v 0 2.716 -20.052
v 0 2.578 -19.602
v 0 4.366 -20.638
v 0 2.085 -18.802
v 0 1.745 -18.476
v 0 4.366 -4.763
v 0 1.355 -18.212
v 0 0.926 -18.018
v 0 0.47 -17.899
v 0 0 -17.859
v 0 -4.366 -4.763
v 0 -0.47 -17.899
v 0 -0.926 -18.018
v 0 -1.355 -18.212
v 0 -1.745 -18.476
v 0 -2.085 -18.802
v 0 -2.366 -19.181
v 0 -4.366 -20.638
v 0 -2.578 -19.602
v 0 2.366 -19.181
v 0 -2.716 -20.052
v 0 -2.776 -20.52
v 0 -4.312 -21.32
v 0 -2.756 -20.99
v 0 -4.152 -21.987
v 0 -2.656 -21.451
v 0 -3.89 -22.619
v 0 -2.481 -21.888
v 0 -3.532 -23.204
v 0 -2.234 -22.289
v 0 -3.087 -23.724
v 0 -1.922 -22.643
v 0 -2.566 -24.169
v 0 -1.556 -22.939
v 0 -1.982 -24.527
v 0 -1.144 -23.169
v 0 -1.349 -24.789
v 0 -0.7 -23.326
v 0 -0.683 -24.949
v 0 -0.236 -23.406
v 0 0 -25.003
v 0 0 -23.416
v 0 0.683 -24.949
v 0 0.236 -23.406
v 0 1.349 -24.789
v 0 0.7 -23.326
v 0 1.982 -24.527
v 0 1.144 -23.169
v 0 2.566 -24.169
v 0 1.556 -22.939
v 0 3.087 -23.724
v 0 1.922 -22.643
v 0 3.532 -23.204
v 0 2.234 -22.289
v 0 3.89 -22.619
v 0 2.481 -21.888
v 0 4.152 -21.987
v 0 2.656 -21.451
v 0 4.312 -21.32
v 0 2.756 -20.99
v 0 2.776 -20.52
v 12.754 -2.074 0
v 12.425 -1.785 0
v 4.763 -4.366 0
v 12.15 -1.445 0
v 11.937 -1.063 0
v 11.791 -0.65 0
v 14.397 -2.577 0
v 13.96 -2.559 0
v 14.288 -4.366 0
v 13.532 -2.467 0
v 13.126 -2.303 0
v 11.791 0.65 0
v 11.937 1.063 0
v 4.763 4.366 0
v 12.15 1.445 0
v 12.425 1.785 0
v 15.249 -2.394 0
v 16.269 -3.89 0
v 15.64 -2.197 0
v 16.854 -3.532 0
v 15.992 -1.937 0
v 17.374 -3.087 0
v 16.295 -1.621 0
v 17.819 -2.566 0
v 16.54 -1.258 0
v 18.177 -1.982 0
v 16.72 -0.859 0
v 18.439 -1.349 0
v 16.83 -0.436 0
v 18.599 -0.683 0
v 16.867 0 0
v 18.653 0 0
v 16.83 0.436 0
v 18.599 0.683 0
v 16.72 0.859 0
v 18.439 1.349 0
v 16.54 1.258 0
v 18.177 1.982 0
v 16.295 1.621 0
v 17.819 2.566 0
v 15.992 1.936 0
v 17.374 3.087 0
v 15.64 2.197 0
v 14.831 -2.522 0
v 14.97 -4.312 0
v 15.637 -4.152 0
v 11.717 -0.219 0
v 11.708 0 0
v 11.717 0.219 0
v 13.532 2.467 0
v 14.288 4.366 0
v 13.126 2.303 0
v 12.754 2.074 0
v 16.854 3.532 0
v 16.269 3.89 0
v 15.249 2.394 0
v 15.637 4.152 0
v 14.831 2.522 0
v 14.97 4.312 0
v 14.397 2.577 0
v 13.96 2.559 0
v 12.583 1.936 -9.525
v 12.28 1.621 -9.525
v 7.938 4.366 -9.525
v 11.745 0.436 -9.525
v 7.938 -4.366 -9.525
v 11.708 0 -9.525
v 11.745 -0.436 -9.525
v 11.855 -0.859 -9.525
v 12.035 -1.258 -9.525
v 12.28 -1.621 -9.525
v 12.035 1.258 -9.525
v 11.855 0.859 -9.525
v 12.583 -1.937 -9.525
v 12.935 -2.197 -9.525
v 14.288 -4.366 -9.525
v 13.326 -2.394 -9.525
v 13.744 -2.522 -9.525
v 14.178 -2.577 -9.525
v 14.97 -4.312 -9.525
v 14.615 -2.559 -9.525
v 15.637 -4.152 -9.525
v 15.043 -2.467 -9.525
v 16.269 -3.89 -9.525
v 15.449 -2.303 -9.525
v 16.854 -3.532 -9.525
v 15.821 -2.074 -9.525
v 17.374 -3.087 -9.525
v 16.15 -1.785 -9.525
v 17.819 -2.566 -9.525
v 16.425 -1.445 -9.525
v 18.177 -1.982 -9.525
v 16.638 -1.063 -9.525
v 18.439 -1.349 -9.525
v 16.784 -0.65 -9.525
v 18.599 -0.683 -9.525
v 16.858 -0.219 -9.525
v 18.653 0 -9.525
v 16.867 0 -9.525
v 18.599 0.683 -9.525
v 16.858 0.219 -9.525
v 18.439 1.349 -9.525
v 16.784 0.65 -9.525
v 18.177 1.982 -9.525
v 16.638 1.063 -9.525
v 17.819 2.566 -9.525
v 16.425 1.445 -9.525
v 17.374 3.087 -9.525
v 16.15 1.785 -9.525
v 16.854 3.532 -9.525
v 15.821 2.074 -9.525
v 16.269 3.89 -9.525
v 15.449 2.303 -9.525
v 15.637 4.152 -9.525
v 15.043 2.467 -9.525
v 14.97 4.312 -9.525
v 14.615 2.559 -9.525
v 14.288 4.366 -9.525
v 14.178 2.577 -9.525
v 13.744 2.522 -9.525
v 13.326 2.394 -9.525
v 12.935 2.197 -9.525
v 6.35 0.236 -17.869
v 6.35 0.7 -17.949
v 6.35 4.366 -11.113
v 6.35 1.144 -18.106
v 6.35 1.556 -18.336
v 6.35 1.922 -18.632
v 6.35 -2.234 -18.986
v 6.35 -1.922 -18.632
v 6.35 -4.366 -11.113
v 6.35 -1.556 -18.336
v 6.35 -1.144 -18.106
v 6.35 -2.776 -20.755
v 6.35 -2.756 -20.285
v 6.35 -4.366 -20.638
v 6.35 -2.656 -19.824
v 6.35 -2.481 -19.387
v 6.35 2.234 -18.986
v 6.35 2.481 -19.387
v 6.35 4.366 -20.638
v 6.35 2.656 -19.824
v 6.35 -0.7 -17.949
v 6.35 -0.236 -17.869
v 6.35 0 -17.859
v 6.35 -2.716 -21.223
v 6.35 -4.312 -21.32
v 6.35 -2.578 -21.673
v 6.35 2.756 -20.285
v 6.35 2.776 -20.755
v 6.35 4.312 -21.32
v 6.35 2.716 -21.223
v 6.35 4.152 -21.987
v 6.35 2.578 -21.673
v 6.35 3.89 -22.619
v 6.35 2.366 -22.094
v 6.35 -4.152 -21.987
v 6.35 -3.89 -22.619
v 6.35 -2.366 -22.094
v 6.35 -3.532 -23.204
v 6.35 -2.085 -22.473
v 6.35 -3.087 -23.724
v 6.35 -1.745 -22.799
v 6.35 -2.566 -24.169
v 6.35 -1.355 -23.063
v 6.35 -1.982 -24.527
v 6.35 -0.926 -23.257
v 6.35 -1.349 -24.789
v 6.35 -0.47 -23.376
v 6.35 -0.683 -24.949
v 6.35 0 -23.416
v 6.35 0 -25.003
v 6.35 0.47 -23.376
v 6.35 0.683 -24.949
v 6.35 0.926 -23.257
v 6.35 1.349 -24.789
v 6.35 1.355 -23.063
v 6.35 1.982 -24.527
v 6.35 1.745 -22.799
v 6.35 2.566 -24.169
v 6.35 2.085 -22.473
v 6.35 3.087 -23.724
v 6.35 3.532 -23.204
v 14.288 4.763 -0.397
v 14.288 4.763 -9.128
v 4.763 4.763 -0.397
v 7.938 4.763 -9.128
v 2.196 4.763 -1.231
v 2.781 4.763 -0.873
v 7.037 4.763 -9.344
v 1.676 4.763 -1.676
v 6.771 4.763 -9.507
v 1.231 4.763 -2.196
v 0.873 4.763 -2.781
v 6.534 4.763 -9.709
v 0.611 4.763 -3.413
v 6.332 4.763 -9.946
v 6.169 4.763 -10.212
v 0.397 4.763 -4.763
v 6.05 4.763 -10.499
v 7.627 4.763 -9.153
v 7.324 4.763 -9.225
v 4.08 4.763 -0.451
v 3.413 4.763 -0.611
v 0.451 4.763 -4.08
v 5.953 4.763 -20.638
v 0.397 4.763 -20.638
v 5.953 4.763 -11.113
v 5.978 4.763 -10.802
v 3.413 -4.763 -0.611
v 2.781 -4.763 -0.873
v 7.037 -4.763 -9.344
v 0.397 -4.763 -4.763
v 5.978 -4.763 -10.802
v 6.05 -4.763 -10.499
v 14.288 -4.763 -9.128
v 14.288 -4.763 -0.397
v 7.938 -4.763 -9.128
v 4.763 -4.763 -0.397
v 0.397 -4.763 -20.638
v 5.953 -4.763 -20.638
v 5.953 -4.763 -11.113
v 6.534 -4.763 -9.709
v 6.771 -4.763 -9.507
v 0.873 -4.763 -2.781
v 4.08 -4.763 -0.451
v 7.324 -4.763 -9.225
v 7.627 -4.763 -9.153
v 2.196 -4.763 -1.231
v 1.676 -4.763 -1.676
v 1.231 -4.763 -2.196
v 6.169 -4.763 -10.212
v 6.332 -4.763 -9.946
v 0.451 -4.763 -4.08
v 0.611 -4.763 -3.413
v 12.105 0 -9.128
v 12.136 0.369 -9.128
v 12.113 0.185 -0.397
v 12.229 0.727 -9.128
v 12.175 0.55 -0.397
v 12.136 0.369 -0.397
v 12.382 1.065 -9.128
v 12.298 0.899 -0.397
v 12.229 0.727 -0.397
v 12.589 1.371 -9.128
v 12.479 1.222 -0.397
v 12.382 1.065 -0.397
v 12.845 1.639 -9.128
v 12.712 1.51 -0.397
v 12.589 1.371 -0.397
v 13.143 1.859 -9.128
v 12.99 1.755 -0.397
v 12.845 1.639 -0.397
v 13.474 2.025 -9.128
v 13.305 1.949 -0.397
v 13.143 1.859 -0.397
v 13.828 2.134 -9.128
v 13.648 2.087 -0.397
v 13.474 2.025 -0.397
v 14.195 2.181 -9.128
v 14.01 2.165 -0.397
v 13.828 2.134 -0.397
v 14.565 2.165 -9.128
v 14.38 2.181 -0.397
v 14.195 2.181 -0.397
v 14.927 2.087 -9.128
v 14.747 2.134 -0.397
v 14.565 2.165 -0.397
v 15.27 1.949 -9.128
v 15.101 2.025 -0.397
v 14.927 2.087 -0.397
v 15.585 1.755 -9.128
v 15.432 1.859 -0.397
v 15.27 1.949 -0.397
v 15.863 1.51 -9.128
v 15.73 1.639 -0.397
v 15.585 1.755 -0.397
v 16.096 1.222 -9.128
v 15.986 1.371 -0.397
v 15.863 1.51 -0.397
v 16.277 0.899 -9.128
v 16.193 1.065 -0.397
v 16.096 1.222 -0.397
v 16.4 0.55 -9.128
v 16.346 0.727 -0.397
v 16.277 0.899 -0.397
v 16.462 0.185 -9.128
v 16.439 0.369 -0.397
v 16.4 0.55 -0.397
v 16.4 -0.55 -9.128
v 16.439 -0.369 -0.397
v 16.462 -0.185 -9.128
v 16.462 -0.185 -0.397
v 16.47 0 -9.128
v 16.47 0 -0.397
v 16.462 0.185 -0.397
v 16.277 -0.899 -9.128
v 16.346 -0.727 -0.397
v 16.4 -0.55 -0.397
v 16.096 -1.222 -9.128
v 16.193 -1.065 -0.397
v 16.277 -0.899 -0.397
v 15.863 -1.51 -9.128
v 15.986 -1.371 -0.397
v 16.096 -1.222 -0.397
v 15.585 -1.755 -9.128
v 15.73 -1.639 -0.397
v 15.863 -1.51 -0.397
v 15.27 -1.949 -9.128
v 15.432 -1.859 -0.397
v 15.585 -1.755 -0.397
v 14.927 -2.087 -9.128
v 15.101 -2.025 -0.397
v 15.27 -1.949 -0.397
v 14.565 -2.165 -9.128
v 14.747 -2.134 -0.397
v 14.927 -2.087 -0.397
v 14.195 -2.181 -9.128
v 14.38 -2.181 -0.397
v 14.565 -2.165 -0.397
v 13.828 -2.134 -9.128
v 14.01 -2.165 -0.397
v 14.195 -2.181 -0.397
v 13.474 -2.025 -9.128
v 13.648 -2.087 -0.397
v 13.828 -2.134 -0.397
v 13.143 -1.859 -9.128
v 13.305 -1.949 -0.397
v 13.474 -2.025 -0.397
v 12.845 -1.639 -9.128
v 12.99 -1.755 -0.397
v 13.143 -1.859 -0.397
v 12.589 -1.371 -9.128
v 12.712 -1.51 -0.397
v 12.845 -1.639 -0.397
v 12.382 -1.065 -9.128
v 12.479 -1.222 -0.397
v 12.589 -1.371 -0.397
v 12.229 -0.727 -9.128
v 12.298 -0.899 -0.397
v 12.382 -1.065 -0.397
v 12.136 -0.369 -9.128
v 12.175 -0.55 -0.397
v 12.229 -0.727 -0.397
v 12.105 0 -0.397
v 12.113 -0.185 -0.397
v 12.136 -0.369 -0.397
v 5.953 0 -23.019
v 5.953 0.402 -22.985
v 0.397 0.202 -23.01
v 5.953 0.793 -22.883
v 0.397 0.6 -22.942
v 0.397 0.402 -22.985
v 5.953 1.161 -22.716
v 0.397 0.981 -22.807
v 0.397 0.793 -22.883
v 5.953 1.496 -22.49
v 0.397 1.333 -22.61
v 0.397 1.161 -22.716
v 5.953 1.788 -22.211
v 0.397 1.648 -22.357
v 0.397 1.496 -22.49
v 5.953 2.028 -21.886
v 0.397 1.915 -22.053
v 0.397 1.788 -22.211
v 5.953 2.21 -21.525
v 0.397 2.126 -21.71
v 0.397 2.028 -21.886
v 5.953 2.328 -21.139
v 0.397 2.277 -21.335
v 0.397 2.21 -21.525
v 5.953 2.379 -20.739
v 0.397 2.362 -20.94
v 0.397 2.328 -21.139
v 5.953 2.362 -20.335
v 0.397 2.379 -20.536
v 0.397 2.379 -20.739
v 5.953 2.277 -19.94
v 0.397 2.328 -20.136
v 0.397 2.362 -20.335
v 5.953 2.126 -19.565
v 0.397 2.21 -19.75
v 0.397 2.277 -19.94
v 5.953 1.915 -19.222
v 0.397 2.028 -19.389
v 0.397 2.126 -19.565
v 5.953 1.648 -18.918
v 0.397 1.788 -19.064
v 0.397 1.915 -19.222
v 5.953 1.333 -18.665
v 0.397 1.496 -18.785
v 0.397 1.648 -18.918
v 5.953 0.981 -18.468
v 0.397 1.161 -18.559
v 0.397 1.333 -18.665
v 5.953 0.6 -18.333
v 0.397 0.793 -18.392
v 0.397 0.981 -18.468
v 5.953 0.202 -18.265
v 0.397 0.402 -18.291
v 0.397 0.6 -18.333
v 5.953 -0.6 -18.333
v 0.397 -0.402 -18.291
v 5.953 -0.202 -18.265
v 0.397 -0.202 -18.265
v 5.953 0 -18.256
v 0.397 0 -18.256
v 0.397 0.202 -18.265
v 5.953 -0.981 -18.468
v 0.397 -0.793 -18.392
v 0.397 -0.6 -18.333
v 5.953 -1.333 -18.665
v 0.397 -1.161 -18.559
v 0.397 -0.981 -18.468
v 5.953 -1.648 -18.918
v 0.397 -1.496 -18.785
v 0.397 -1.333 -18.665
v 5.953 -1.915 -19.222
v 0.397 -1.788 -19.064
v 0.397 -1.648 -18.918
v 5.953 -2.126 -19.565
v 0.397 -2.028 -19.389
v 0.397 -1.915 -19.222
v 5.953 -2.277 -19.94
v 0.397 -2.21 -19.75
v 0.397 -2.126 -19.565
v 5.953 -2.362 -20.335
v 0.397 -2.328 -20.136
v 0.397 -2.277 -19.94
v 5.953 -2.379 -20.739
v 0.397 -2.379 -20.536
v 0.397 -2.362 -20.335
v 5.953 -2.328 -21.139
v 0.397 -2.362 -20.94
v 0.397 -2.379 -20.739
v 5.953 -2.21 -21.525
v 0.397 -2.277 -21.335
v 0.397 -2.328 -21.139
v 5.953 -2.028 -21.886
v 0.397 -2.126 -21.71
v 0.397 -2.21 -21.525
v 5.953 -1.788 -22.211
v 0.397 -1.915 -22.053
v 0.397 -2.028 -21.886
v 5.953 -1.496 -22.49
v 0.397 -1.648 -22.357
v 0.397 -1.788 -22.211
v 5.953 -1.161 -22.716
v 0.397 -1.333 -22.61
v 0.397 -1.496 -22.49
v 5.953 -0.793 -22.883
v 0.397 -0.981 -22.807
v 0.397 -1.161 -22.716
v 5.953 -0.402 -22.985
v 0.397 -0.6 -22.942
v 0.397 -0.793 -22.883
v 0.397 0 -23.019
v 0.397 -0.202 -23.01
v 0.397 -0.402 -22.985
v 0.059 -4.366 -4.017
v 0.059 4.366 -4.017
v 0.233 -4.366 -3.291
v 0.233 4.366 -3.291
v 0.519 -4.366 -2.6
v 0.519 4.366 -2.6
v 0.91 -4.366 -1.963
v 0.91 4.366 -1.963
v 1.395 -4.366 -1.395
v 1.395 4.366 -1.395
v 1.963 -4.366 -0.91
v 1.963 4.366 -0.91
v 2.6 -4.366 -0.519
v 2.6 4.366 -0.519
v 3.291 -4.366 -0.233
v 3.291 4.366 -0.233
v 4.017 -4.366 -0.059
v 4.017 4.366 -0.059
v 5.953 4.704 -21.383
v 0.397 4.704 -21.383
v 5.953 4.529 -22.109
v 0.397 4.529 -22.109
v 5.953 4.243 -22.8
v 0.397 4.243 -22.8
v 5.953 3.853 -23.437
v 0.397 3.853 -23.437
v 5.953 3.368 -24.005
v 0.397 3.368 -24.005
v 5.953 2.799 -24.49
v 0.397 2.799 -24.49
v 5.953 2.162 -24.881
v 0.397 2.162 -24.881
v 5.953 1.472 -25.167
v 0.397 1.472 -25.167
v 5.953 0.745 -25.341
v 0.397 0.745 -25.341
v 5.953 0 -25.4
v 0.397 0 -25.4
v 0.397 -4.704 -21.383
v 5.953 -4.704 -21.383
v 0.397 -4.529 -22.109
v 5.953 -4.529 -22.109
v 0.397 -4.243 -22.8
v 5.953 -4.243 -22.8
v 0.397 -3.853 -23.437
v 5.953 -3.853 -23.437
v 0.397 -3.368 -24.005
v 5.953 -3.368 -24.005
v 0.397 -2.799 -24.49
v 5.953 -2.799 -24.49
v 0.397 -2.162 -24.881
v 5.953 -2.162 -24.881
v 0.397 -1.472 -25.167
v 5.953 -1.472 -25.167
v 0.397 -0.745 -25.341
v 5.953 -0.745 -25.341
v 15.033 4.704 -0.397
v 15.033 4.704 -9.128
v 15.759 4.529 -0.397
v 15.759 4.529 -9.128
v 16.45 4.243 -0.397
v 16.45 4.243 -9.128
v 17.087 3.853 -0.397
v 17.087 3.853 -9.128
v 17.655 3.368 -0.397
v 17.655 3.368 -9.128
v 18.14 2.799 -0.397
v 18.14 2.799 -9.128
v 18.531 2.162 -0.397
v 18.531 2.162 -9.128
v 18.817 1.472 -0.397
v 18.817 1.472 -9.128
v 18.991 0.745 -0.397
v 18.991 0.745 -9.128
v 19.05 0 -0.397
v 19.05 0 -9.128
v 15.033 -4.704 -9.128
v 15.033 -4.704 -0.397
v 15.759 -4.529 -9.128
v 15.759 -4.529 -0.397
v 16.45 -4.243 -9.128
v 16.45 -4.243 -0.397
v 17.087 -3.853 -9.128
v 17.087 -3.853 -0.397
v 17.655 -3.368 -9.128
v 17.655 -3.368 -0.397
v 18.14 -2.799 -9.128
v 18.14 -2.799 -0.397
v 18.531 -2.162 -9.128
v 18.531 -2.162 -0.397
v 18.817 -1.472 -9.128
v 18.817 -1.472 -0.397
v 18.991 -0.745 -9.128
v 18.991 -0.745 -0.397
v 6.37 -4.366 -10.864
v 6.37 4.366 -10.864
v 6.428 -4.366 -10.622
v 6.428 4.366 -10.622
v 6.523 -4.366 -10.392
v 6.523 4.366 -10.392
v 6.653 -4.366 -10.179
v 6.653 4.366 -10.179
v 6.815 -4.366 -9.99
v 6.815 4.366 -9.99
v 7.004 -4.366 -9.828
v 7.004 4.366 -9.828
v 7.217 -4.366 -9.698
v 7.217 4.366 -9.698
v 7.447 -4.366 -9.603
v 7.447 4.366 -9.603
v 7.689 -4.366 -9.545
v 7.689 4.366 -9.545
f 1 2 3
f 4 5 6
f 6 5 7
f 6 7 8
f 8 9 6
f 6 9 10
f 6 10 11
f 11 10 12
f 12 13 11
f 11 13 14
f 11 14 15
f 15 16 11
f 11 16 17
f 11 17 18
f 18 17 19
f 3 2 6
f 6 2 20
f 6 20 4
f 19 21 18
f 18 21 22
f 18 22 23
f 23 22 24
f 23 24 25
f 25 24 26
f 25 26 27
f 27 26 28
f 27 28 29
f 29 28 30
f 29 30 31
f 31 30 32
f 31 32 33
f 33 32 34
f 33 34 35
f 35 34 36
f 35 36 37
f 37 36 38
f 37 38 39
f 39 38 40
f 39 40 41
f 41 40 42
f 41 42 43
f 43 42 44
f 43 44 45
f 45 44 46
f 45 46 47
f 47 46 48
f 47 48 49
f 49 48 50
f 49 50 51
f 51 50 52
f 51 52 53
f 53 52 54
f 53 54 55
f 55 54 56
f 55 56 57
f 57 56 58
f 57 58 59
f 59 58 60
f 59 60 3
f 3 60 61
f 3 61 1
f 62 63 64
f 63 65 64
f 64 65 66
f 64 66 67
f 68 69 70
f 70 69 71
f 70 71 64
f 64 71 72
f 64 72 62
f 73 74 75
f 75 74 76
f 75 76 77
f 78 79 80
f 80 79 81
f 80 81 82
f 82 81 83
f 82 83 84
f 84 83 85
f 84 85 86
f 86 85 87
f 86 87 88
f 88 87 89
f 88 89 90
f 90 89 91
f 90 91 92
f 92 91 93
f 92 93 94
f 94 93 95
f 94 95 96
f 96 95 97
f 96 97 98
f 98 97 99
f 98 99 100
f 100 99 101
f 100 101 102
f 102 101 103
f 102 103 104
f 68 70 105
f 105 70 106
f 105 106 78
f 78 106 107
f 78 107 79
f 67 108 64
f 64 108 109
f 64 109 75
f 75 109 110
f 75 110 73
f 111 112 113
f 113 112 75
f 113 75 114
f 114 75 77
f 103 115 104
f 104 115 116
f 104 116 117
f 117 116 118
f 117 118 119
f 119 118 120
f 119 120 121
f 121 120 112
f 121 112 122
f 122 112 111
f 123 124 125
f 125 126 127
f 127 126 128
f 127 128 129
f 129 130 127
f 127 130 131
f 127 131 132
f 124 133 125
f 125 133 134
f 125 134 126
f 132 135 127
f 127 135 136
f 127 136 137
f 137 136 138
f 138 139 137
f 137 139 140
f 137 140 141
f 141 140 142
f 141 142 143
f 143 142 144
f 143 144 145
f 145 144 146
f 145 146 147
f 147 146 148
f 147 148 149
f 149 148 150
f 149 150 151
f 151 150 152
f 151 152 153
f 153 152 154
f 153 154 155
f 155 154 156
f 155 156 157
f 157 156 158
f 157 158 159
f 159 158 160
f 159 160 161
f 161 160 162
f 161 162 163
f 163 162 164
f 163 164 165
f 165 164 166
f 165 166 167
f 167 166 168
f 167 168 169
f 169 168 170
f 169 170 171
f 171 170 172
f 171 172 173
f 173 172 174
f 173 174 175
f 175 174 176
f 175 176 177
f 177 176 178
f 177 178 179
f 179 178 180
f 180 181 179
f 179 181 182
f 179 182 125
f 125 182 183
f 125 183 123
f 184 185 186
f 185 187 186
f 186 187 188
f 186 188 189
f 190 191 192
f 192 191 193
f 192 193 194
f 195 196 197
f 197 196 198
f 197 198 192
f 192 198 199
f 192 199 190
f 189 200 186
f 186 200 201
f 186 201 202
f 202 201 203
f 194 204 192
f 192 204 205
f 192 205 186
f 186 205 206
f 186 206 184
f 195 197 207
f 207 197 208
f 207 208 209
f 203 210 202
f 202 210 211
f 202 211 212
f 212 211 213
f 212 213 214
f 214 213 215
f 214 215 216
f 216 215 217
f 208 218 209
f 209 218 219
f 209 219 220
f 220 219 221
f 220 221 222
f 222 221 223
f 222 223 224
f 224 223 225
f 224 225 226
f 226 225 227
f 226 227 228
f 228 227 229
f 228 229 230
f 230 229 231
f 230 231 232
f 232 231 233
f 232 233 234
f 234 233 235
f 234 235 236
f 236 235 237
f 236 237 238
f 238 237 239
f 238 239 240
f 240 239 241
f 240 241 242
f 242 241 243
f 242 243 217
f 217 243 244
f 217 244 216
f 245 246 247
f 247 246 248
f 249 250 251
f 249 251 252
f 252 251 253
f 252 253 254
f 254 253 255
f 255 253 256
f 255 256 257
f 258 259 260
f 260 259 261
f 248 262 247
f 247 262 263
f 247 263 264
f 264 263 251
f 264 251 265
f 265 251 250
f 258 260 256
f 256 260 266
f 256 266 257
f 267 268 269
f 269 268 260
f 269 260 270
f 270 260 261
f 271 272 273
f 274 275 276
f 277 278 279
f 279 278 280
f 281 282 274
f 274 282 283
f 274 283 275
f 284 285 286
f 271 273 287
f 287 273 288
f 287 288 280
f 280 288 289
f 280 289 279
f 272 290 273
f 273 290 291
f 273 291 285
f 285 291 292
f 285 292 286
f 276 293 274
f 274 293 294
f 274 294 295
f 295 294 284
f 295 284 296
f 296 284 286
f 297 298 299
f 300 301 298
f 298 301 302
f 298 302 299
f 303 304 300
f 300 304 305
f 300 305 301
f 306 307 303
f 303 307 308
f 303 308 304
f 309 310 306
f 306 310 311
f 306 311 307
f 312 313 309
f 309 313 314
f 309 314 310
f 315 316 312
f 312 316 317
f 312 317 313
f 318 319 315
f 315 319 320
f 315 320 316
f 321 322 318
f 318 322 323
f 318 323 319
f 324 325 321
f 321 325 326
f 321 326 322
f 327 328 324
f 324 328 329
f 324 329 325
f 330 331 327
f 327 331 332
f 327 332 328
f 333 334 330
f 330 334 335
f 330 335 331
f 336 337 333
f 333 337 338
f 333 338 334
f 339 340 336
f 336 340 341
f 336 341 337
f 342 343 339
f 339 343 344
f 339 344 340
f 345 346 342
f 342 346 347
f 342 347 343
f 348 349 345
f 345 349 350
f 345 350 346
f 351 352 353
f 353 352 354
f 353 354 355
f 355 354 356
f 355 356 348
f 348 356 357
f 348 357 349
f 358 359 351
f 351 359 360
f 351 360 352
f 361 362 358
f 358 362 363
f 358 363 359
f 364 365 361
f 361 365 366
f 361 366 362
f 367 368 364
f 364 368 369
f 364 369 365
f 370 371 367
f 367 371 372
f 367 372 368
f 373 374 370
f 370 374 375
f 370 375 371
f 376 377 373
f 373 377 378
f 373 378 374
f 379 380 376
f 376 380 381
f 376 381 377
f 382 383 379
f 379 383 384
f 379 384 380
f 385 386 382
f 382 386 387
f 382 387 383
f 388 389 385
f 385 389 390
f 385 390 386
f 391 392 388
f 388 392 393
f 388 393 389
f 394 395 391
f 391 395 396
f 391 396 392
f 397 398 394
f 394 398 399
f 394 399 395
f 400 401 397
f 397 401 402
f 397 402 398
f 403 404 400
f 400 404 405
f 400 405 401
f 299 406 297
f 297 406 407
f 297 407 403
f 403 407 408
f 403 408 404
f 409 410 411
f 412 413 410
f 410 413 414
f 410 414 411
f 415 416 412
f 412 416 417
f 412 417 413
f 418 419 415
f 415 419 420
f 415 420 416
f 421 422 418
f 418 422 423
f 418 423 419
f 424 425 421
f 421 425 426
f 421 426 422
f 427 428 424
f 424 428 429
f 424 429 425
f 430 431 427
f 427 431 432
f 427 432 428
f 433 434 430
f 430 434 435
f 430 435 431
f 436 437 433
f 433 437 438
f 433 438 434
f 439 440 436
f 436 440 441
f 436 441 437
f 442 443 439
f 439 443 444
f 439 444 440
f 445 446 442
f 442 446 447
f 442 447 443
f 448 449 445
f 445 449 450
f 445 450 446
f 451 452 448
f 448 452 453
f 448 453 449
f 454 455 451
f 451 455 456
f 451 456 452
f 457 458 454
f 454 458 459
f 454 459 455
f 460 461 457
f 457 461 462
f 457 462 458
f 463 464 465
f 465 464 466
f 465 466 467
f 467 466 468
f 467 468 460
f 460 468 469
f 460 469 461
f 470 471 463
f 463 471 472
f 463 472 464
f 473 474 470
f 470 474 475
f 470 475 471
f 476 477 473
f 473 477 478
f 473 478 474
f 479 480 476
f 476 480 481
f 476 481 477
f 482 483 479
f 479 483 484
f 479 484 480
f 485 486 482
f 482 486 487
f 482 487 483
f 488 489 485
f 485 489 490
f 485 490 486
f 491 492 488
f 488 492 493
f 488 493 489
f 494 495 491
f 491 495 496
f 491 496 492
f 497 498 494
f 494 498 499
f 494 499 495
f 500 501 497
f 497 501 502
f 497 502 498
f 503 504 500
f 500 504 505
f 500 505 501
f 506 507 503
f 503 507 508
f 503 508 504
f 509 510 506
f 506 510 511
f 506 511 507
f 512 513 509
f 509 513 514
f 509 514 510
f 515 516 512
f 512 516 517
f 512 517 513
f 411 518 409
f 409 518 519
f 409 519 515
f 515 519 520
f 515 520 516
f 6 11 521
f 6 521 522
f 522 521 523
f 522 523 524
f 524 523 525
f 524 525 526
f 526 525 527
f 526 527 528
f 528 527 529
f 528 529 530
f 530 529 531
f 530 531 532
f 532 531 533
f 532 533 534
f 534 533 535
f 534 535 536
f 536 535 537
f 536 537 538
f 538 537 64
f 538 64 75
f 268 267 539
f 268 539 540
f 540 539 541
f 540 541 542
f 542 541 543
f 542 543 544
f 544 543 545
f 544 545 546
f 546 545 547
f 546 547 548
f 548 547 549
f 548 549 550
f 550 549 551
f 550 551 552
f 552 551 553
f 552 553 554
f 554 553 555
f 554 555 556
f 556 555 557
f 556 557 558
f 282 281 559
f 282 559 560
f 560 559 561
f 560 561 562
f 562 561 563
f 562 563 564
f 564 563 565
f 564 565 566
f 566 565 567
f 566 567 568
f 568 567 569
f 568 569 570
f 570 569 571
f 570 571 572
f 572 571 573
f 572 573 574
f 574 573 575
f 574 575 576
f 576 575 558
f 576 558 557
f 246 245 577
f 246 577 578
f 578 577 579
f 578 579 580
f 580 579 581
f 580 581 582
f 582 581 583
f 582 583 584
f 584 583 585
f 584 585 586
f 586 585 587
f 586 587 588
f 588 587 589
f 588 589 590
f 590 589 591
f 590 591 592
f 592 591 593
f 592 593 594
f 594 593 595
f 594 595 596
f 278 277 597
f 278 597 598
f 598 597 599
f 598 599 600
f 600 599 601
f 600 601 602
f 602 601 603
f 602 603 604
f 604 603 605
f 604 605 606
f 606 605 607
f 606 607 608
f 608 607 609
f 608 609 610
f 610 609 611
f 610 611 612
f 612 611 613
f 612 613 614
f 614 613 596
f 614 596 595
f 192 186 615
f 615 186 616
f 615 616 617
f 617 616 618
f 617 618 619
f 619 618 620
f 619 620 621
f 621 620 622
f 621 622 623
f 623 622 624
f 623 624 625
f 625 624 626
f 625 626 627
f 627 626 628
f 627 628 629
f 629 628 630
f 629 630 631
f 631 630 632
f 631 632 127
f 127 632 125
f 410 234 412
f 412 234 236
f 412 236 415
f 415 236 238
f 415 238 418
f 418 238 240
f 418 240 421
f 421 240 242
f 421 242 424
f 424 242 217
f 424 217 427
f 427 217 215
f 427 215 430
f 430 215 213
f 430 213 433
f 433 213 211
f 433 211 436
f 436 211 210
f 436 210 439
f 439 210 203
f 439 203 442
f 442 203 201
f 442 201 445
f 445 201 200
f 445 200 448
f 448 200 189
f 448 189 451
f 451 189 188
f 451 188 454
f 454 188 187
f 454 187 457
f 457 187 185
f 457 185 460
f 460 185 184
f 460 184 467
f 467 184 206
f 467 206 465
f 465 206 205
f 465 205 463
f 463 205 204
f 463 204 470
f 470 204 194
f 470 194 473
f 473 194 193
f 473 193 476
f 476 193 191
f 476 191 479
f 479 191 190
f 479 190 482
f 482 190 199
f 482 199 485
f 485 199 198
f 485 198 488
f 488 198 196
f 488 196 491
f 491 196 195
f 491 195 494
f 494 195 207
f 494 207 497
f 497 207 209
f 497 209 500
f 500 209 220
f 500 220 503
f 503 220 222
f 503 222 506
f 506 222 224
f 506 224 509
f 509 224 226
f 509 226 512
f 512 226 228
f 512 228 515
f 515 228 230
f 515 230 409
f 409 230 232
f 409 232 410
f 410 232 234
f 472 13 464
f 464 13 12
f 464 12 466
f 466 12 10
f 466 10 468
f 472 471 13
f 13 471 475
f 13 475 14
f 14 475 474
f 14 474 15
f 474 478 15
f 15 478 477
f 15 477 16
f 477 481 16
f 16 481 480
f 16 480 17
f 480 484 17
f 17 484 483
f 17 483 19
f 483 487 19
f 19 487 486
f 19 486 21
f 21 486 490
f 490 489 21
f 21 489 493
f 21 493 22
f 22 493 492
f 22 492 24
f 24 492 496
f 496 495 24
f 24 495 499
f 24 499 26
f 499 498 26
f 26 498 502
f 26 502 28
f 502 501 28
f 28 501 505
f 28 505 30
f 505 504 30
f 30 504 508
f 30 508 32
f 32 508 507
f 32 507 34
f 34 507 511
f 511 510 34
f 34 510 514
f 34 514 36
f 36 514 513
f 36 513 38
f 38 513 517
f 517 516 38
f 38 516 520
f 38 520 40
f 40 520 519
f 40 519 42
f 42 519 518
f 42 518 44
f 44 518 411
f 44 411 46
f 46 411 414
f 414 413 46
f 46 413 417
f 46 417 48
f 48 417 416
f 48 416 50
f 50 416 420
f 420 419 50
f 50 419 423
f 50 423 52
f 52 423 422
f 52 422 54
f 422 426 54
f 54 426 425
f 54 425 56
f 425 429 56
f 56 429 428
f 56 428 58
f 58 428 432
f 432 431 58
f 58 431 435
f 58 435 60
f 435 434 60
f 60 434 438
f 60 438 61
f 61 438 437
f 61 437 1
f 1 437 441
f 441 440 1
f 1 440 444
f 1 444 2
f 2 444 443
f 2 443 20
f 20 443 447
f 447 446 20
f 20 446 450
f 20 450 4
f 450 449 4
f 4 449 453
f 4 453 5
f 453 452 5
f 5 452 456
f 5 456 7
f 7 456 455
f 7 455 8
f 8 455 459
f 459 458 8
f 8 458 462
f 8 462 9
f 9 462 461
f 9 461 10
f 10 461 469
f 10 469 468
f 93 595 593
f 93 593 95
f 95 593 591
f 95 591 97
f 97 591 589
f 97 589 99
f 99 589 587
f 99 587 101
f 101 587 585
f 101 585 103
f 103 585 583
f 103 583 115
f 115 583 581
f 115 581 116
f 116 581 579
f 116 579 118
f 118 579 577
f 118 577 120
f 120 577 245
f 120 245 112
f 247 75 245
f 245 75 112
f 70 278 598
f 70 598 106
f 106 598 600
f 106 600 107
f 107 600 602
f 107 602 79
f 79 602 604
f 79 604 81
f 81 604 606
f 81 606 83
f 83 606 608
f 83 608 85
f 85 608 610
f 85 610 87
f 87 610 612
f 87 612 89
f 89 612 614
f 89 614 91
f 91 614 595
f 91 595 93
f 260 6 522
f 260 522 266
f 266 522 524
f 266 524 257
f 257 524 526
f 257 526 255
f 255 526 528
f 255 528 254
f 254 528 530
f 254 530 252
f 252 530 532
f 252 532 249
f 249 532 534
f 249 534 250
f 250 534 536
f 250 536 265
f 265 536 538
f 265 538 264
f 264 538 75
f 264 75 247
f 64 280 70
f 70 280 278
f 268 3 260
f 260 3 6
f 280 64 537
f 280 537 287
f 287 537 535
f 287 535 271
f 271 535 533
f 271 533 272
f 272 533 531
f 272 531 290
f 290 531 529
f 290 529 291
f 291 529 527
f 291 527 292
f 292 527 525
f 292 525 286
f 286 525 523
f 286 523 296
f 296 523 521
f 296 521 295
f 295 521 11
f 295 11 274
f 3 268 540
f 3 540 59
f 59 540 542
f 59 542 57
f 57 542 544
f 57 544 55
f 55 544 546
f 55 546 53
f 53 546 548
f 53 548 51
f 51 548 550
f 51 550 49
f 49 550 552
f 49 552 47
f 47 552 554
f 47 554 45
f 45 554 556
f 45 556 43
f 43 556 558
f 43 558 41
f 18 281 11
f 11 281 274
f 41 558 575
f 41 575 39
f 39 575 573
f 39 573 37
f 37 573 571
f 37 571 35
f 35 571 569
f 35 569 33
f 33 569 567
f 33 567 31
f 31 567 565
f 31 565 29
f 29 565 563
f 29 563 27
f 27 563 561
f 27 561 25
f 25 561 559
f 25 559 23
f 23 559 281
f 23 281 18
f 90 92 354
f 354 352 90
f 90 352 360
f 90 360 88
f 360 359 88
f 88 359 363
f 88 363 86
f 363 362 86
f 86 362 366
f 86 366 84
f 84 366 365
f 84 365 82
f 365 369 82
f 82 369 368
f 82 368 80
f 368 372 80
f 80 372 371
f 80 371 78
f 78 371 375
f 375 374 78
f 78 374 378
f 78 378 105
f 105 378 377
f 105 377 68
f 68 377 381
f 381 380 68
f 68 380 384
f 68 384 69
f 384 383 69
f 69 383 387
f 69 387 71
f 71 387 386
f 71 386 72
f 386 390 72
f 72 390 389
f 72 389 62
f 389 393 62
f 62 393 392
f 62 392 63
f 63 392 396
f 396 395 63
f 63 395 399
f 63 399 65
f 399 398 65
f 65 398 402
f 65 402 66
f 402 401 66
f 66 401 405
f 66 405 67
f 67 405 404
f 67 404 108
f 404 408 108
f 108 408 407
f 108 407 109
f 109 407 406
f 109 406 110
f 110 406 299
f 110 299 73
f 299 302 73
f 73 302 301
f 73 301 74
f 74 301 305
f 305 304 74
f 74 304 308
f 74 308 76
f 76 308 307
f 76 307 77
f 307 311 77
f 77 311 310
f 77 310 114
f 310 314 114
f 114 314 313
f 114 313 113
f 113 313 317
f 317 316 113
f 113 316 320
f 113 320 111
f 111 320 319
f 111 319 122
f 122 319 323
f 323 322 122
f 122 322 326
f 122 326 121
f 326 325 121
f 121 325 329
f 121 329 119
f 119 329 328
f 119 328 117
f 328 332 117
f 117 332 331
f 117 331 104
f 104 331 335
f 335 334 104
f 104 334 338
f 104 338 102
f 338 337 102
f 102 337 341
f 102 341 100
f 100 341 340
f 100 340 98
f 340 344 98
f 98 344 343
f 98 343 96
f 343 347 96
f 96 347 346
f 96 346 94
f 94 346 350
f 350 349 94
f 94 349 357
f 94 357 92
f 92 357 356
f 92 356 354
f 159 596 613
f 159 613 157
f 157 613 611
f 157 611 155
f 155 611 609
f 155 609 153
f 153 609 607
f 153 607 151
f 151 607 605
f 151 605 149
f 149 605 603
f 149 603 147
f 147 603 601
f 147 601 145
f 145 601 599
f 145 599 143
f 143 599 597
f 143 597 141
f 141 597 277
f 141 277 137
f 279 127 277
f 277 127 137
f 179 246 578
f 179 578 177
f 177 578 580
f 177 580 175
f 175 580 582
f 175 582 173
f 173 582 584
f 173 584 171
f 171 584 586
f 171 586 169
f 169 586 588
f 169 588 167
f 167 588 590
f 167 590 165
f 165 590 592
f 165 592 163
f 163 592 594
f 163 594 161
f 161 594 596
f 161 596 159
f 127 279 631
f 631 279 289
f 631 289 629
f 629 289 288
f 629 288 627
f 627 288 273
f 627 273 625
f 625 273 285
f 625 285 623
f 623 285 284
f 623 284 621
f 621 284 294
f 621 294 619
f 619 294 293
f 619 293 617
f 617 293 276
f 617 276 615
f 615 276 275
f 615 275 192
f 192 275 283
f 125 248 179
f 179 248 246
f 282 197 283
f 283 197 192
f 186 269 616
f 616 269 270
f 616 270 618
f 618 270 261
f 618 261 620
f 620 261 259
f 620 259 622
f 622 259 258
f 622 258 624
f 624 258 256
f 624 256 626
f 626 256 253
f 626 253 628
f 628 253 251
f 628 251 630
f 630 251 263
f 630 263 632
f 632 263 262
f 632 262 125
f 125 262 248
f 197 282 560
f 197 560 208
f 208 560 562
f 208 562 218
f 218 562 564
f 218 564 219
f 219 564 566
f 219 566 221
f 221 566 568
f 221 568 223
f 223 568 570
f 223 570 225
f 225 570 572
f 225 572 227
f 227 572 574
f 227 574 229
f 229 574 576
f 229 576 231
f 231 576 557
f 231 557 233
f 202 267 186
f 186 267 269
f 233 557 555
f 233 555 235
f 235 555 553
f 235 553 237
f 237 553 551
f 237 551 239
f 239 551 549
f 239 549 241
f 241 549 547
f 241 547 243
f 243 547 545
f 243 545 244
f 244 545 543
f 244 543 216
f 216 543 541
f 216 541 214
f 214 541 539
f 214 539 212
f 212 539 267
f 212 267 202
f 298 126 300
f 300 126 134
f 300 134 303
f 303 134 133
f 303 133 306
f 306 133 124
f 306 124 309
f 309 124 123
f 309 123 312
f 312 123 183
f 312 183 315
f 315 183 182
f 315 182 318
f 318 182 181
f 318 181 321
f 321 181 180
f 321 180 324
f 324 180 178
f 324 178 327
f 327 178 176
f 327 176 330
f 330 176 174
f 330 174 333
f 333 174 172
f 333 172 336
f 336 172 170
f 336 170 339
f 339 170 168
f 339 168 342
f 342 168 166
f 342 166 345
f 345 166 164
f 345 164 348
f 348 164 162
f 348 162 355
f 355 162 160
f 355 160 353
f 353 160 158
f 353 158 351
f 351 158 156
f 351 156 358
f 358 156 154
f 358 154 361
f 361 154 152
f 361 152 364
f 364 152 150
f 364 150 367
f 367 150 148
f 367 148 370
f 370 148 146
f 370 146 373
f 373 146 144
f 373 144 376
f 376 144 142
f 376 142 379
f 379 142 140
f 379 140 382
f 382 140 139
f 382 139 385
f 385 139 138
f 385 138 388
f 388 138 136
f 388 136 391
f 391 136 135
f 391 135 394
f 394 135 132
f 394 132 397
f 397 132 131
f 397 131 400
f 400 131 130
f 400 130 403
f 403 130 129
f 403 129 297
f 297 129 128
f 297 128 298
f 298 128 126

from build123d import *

# Parameters (mm, degrees)
BOSS_EXTRUDE1_DEPTH     = 4.7625
CUT_EXTRUDE1_DEPTH      = 26.250733281
CUT_EXTRUDE1_DEPTH_BACK = 26.250733281
SKETCH2_R               = 2.1828125
CUT_EXTRUDE2_DEPTH      = 29.794641971
CUT_EXTRUDE2_DEPTH_BACK = 29.794641971
SKETCH3_R               = 2.38125
FILLET1_R               = 4.7625
FILLET2_R               = 1.5875
CHAMFER1_SIZE           = 0.396875


with BuildPart() as part:
    # Sketch1 → Boss-Extrude1 (new, symmetric)
    with BuildSketch(Plane(origin=(0, 0, 0), x_dir=(1, 0, 0), z_dir=(0, 1, 0))):
        Polygon((0, 0), (19.05, 0), (19.05, 9.525), (6.35, 9.525), (6.35, 25.4), (0, 25.4), align=None)
    extrude(amount=BOSS_EXTRUDE1_DEPTH, both=True)

    # Sketch2 → Cut-Extrude1 (cut, two sides: drawn at the far end of the back side and taken through both)
    with BuildSketch(Plane(origin=(0, 0, -9.525), x_dir=(-1, 0, 0), z_dir=(0, 0, -1)).offset(-CUT_EXTRUDE1_DEPTH_BACK)):
        with Locations((-14.2875, 0)):
            Circle(SKETCH2_R)
    extrude(amount=CUT_EXTRUDE1_DEPTH + CUT_EXTRUDE1_DEPTH_BACK, mode=Mode.SUBTRACT)

    # Sketch3 → Cut-Extrude2 (cut, two sides: drawn at the far end of the back side and taken through both)
    with BuildSketch(Plane(origin=(6.35, 0, 0), x_dir=(0, 0, -1), z_dir=(1, 0, 0)).offset(-CUT_EXTRUDE2_DEPTH_BACK)):
        with Locations((20.6375, 0)):
            Circle(SKETCH3_R)
    extrude(amount=CUT_EXTRUDE2_DEPTH + CUT_EXTRUDE2_DEPTH_BACK, mode=Mode.SUBTRACT)

    # Fillet1
    fillet1_edges = [part.edges().sort_by_distance(p)[0] for p in [
        (0, 0, 0),
        (3.175, -4.7625, -25.4),
        (3.175, 4.7625, -25.4),
        (19.05, -4.7625, -4.7625),
        (19.05, 4.7625, -4.7625),
    ]]
    fillet(fillet1_edges, radius=FILLET1_R - 0.0001)  # a hair under: the kernel refuses the full size

    # Fillet2
    fillet2_edges = [part.edges().sort_by_distance(p)[0] for p in [
        (6.35, 0, -9.525),
    ]]
    fillet(fillet2_edges, radius=FILLET2_R)

    # Chamfer1
    chamfer1_edges = [part.edges().sort_by_distance(p)[0] for p in [
        (16.4703125, 0, 0),
        (16.4703125, 0, -9.525),
        (0, 0, -18.25625),
        (6.35, 0, -18.25625),
        (9.525, -4.7625, 0),
        (9.525, 4.7625, 0),
        (17.655125335, 3.367625335, 0),
        (17.655125335, -3.367625335, 0),
        (0, -4.7625, -12.7),
        (11.11255, -4.7625, -9.525),
        (1.394874665, -4.7625, -1.394874665),
        (0, 4.7625, -12.7),
        (0, 3.367625335, -24.005125335),
        (0, -3.367625335, -24.005125335),
        (11.11255, 4.7625, -9.525),
        (1.394874665, 4.7625, -1.394874665),
        (6.35, 3.367625335, -24.005125335),
        (6.35, -3.367625335, -24.005125335),
        (17.655125335, 3.367625335, -9.525),
        (17.655125335, -3.367625335, -9.525),
        (6.35, -4.7625, -15.87505),
        (6.35, 4.7625, -15.87505),
        (6.814967985, -4.7625, -9.989967985),
        (6.814967985, 4.7625, -9.989967985),
    ]]
    chamfer(chamfer1_edges, length=CHAMFER1_SIZE)


solid = part.part
